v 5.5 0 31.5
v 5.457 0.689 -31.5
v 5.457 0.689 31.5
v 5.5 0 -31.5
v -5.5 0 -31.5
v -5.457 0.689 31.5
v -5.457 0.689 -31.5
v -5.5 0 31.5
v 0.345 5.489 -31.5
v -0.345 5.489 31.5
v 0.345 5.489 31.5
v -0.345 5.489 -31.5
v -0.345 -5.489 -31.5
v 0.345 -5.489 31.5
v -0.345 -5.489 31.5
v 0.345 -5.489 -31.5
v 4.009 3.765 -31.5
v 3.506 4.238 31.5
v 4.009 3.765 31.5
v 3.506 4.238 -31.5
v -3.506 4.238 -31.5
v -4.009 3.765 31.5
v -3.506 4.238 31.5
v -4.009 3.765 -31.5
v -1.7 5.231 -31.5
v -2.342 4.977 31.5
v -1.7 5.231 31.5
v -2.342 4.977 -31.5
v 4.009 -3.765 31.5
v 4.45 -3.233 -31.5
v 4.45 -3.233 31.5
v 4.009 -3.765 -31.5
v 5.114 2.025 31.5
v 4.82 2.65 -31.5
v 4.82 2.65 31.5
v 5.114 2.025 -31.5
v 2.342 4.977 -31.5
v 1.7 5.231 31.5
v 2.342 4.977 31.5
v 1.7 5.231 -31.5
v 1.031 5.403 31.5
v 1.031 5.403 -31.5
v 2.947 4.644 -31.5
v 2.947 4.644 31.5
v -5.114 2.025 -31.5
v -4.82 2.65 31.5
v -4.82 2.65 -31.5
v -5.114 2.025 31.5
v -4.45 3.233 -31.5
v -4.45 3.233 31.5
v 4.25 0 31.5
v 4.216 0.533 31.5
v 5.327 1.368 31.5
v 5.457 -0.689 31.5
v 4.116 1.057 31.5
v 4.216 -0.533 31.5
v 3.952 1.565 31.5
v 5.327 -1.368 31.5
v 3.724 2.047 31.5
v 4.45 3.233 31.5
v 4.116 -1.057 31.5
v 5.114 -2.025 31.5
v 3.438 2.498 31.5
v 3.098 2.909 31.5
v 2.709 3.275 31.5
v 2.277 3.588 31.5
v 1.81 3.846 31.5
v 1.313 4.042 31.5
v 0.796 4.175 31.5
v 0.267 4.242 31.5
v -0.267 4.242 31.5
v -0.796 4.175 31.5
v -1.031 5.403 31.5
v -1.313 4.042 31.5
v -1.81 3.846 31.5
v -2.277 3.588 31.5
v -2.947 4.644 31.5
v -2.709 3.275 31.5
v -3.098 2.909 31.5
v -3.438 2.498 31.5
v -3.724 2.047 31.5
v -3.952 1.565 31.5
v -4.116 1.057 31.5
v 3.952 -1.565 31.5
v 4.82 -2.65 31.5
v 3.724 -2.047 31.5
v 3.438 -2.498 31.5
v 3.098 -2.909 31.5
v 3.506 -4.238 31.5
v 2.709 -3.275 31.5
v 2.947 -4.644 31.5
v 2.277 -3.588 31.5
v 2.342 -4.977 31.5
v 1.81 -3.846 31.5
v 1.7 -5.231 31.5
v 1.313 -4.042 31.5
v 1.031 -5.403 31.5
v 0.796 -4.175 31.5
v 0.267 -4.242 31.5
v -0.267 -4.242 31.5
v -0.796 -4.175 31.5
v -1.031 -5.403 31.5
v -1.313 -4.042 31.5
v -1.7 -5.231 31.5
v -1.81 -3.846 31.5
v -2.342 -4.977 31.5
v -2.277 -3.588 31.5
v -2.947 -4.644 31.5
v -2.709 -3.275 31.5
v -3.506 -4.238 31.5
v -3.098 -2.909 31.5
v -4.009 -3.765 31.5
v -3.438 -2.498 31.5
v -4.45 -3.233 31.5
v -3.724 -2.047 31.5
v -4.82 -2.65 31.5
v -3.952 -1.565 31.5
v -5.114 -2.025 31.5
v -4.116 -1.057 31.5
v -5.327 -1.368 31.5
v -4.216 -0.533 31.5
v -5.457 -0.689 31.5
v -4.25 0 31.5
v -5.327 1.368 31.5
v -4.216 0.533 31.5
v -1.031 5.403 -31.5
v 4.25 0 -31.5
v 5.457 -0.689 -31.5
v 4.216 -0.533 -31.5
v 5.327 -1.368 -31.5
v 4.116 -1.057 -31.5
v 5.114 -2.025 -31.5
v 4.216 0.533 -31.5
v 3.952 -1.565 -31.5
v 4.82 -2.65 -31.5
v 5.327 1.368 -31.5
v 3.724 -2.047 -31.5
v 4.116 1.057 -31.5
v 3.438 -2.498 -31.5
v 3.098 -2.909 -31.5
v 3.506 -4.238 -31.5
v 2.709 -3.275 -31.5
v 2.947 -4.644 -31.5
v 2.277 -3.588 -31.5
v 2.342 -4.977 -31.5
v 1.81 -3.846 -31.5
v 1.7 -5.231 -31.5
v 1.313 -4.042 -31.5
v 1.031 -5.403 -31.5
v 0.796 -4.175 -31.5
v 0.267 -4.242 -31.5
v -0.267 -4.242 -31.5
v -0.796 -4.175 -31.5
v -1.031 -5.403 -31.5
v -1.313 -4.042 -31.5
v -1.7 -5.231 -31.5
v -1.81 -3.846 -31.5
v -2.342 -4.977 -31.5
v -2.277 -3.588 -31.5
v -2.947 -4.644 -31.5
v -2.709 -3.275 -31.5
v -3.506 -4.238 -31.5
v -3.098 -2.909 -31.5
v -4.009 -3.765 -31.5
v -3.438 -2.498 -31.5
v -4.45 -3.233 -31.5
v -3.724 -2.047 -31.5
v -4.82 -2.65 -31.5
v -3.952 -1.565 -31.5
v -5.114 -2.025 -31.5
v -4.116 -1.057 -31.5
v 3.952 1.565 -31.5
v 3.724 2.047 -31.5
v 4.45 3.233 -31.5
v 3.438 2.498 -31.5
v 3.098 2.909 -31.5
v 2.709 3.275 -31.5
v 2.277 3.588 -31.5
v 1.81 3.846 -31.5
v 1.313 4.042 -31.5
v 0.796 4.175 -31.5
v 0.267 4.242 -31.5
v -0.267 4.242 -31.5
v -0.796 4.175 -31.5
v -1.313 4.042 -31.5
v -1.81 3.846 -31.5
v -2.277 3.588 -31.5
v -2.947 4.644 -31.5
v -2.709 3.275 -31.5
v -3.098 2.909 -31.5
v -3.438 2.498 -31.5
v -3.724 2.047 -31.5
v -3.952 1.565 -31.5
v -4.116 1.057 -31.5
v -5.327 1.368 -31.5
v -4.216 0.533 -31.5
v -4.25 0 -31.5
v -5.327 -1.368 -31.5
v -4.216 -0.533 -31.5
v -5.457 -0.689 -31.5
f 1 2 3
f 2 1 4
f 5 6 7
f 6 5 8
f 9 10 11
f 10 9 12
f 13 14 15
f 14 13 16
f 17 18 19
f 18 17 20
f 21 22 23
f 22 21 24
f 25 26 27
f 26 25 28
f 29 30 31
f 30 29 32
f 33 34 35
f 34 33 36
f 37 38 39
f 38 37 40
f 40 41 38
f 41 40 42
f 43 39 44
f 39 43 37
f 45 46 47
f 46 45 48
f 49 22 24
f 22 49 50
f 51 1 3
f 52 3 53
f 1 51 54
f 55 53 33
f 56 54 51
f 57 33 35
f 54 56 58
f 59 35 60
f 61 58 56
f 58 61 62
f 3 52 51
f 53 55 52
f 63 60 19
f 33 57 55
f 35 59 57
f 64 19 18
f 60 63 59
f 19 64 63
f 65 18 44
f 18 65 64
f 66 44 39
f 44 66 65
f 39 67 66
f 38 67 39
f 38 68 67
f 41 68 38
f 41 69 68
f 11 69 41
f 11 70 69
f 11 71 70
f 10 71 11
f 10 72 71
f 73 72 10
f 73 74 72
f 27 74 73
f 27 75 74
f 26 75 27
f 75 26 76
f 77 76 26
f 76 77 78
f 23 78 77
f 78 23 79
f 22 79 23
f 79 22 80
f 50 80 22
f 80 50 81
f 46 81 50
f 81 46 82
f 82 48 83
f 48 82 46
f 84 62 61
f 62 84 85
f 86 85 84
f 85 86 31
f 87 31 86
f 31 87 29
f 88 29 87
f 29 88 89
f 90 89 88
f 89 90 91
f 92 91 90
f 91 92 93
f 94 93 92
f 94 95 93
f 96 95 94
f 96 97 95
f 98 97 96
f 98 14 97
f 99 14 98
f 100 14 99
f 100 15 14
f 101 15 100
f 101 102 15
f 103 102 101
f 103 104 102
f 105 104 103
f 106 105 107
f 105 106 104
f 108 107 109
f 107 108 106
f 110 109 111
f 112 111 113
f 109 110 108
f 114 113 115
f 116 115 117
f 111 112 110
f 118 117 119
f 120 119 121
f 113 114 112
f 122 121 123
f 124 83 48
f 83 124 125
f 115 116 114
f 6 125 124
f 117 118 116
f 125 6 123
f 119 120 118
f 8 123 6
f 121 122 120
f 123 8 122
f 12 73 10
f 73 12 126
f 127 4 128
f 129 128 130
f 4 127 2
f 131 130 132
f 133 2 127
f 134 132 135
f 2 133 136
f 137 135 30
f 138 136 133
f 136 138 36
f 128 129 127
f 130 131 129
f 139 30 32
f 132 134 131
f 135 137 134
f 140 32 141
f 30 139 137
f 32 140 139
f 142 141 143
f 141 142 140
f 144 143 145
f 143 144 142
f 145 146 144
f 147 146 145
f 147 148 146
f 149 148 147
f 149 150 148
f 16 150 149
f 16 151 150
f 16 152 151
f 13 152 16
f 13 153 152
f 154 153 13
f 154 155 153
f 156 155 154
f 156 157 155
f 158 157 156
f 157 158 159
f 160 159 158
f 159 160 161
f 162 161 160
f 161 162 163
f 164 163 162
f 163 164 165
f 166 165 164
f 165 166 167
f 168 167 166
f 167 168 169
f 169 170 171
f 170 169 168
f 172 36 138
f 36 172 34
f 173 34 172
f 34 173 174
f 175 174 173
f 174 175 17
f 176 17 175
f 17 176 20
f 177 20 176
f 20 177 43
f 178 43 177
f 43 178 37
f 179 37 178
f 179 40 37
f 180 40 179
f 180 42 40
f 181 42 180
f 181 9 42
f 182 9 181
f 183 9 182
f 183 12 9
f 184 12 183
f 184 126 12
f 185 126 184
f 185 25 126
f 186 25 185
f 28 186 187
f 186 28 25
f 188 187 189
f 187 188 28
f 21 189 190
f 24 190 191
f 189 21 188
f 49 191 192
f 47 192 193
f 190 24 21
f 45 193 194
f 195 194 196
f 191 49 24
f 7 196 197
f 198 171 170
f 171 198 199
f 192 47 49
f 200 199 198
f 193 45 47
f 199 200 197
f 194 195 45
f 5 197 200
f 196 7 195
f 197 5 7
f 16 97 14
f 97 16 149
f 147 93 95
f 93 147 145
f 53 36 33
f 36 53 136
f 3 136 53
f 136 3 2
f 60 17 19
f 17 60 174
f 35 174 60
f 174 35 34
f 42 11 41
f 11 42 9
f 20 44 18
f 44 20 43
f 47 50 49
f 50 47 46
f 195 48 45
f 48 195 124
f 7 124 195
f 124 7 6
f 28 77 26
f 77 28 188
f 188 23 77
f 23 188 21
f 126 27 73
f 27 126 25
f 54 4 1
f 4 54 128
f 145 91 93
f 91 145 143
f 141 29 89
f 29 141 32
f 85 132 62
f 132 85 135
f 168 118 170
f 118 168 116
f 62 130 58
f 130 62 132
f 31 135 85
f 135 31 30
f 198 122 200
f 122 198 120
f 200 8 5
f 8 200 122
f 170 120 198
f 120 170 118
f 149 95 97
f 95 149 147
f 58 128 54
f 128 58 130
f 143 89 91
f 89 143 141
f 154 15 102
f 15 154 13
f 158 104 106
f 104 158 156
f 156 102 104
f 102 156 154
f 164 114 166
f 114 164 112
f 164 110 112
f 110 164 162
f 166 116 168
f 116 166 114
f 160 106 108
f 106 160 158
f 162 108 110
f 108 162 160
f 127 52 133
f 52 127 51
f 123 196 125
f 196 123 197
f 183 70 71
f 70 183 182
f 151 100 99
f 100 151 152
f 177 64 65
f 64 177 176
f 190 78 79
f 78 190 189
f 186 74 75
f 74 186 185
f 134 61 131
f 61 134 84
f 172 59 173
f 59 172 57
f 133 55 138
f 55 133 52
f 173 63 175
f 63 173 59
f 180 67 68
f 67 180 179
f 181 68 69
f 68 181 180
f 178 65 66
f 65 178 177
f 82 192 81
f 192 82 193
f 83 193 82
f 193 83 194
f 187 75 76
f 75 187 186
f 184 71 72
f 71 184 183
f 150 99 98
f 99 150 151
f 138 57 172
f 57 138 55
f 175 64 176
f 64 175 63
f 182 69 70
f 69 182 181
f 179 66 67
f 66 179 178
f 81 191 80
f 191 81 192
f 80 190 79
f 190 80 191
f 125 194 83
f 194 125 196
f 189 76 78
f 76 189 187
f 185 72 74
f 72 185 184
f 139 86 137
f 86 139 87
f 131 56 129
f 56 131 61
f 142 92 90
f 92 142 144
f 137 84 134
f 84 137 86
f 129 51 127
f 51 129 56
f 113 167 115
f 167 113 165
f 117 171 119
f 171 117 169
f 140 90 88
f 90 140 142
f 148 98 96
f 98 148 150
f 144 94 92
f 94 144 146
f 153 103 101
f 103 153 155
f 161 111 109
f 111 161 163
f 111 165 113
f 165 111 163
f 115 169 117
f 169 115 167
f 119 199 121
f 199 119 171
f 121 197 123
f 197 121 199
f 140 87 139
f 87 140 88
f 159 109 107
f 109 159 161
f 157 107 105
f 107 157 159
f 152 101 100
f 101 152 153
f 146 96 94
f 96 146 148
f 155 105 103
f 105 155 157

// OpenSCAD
$fn = 50;


difference() {
	union() {
		translate(v = [0, 0, -31.5000000000]) {
			cylinder(h = 63, r = 5.5000000000);
		}
	}
	union() {
		translate(v = [0, 0, -100.0000000000]) {
			cylinder(h = 200, r = 4.2500000000);
		}
	}
}
